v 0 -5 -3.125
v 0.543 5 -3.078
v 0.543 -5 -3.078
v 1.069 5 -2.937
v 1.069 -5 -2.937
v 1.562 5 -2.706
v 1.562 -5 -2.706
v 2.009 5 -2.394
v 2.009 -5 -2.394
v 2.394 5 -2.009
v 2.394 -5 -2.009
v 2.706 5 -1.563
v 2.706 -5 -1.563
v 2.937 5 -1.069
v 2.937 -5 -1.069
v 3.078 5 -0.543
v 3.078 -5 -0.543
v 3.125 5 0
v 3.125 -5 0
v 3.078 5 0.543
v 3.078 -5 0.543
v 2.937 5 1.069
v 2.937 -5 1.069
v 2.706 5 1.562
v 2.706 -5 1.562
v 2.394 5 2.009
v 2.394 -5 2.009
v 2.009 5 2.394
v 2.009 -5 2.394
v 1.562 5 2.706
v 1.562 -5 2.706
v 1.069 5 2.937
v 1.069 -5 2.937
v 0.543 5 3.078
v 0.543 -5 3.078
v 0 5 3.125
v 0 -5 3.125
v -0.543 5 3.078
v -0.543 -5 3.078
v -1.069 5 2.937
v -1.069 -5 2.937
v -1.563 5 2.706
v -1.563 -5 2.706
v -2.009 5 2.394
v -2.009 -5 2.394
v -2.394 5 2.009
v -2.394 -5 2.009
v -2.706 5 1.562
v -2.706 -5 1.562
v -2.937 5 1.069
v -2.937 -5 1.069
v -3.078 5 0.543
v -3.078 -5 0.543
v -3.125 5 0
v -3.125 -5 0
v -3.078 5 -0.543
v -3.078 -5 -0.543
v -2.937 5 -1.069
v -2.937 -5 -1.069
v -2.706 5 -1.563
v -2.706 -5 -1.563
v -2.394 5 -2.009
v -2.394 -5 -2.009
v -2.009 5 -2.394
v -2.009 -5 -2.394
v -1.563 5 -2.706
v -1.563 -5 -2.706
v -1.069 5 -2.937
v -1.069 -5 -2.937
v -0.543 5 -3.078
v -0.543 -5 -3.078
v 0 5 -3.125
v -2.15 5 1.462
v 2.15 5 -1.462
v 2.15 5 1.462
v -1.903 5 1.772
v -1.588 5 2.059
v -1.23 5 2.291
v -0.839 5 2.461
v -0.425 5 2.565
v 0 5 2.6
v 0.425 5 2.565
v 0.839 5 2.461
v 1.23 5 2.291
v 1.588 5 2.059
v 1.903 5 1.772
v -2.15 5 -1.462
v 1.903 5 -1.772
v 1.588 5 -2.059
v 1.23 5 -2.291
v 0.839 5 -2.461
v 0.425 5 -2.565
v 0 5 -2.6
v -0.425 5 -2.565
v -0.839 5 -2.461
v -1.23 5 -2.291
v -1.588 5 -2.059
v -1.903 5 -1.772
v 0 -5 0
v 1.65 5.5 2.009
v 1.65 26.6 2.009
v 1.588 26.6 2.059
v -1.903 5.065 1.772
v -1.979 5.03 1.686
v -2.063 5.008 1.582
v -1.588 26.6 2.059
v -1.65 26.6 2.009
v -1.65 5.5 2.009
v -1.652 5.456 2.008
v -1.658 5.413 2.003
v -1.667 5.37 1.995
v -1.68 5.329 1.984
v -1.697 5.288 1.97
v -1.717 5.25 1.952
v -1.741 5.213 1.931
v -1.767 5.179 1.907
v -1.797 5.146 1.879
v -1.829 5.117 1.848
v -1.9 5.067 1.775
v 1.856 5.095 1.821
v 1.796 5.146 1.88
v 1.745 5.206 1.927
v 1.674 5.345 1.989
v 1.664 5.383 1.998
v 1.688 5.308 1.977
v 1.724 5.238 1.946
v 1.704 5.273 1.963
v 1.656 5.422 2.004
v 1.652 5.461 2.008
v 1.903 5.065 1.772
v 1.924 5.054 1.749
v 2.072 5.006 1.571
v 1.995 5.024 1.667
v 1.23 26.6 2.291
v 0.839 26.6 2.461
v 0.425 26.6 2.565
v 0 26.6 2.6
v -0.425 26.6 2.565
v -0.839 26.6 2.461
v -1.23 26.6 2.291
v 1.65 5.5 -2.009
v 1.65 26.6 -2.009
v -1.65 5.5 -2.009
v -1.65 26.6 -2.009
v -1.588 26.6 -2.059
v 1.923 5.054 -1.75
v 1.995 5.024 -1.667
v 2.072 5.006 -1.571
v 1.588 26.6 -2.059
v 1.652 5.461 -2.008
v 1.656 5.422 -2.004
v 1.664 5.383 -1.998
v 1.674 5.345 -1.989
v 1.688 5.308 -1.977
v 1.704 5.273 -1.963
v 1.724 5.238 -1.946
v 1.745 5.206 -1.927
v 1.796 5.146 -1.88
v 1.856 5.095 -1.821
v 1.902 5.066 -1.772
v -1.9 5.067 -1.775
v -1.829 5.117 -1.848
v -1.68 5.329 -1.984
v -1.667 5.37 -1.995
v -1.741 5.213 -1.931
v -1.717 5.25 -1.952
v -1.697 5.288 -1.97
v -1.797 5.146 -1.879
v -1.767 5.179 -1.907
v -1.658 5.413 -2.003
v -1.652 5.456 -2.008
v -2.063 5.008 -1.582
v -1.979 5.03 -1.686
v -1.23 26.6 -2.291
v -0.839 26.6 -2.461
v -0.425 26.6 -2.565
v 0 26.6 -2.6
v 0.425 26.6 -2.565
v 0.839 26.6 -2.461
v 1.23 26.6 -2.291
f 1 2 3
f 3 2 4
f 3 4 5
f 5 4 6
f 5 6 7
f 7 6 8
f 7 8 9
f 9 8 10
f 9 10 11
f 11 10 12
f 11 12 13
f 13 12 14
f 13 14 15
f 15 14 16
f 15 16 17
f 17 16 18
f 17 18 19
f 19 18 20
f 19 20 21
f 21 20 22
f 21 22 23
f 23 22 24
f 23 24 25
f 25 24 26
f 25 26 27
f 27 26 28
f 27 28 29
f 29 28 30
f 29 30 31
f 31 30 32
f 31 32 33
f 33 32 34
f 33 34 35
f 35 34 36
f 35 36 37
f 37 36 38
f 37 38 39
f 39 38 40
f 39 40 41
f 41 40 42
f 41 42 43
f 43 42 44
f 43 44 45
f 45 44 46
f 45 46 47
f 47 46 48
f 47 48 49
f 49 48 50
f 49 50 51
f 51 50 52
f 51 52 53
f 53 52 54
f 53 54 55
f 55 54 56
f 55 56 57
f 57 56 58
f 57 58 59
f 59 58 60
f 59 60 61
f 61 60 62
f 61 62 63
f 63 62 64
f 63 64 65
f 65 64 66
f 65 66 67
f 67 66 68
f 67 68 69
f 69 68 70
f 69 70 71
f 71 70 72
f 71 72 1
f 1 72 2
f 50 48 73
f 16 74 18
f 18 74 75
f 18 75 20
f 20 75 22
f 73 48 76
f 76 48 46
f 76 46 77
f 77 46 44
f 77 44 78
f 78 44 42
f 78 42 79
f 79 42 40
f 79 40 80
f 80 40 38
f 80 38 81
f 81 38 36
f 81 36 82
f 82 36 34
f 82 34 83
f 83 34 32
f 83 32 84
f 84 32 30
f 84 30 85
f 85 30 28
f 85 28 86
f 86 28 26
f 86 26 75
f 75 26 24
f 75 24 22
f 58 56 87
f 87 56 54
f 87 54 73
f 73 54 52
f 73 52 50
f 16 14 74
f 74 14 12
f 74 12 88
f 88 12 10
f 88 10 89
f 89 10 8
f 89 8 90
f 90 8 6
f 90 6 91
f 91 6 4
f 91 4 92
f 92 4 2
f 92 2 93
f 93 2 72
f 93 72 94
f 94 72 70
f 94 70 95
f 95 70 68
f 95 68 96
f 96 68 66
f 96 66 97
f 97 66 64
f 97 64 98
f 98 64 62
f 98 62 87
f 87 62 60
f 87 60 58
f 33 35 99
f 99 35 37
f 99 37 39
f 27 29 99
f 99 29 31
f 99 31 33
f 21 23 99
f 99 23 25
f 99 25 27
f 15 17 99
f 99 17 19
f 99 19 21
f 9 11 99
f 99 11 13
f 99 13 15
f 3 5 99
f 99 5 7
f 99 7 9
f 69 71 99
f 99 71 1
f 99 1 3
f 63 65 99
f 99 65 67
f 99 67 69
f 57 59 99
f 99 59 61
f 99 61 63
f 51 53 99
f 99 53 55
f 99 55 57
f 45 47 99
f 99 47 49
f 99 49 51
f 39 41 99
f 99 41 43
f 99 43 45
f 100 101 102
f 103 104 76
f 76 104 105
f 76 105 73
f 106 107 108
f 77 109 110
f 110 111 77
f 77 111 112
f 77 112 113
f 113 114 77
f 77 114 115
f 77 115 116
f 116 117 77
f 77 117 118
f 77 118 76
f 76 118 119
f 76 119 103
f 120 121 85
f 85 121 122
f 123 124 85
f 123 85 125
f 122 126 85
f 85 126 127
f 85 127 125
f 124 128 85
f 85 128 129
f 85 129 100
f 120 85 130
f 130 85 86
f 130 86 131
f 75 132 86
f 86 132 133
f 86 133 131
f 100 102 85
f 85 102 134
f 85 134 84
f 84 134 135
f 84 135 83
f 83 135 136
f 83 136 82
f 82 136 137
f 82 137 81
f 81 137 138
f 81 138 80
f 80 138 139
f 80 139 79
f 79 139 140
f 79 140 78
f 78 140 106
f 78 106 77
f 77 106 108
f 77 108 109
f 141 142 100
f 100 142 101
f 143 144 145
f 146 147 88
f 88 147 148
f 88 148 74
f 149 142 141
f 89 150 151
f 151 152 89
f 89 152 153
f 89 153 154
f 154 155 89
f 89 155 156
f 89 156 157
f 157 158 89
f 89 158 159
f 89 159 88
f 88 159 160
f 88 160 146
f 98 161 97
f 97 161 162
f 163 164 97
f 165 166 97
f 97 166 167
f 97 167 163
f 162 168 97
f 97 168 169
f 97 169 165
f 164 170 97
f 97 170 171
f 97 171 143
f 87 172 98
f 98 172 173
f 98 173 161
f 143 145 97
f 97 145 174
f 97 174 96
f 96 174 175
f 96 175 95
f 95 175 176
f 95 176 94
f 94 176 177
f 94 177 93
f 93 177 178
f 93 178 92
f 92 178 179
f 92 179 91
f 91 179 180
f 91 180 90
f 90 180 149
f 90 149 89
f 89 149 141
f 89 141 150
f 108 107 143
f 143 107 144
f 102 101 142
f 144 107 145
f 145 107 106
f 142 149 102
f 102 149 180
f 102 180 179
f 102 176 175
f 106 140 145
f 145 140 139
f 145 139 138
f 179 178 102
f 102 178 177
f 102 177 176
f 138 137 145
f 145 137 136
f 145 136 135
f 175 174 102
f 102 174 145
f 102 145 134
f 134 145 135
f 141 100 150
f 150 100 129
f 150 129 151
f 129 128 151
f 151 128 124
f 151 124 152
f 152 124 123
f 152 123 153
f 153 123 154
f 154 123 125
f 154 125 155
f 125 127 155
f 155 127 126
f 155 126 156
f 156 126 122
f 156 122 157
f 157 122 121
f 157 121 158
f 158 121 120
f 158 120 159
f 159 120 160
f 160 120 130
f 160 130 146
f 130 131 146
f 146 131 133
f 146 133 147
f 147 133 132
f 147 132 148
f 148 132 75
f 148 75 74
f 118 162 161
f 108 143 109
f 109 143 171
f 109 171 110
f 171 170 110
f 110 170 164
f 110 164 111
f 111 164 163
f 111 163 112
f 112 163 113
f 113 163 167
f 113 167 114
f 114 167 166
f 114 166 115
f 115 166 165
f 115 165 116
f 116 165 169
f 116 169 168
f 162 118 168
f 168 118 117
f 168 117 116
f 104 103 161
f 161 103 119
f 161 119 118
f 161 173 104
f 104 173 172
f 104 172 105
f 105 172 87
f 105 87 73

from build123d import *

# Parameters (mm, degrees)
SKETCH1_R           = 3.125
BOSS_EXTRUDE1_DEPTH = 5
BOSS_EXTRUDE2_DEPTH = 21.6
FILLET1_R           = 0.5


with BuildPart() as part:
    # Sketch1 → Boss-Extrude1 (new, symmetric)
    with BuildSketch(Plane(origin=(0, 0, 0), x_dir=(1, 0, 0), z_dir=(0, 1, 0))):
        with Locations(Location((0, 0, 0), (0, 0, 270))):
            Circle(SKETCH1_R)
    extrude(amount=BOSS_EXTRUDE1_DEPTH, both=True)

    # Sketch2 → Boss-Extrude2 (add)
    with BuildSketch(Plane(origin=(0, 5, 0), x_dir=(1, 0, 0), z_dir=(0, 1, 0))):
        with BuildLine():
            Line((-1.65, -2.00935313), (-1.65, 2.00935313))
            ThreePointArc((-1.65, 2.00935313), (0, 2.6), (1.65, 2.00935313))
            Line((1.65, 2.00935313), (1.65, -2.00935313))
            ThreePointArc((1.65, -2.00935313), (0, -2.6), (-1.65, -2.00935313))
        make_face()
    extrude(amount=BOSS_EXTRUDE2_DEPTH)

    # Fillet1
    fillet1_edges = [part.edges().sort_by_distance(p)[0] for p in [
        (1.65, 5, 0),
        (-1.65, 5, 0),
    ]]
    fillet(fillet1_edges, radius=FILLET1_R)


solid = part.part
